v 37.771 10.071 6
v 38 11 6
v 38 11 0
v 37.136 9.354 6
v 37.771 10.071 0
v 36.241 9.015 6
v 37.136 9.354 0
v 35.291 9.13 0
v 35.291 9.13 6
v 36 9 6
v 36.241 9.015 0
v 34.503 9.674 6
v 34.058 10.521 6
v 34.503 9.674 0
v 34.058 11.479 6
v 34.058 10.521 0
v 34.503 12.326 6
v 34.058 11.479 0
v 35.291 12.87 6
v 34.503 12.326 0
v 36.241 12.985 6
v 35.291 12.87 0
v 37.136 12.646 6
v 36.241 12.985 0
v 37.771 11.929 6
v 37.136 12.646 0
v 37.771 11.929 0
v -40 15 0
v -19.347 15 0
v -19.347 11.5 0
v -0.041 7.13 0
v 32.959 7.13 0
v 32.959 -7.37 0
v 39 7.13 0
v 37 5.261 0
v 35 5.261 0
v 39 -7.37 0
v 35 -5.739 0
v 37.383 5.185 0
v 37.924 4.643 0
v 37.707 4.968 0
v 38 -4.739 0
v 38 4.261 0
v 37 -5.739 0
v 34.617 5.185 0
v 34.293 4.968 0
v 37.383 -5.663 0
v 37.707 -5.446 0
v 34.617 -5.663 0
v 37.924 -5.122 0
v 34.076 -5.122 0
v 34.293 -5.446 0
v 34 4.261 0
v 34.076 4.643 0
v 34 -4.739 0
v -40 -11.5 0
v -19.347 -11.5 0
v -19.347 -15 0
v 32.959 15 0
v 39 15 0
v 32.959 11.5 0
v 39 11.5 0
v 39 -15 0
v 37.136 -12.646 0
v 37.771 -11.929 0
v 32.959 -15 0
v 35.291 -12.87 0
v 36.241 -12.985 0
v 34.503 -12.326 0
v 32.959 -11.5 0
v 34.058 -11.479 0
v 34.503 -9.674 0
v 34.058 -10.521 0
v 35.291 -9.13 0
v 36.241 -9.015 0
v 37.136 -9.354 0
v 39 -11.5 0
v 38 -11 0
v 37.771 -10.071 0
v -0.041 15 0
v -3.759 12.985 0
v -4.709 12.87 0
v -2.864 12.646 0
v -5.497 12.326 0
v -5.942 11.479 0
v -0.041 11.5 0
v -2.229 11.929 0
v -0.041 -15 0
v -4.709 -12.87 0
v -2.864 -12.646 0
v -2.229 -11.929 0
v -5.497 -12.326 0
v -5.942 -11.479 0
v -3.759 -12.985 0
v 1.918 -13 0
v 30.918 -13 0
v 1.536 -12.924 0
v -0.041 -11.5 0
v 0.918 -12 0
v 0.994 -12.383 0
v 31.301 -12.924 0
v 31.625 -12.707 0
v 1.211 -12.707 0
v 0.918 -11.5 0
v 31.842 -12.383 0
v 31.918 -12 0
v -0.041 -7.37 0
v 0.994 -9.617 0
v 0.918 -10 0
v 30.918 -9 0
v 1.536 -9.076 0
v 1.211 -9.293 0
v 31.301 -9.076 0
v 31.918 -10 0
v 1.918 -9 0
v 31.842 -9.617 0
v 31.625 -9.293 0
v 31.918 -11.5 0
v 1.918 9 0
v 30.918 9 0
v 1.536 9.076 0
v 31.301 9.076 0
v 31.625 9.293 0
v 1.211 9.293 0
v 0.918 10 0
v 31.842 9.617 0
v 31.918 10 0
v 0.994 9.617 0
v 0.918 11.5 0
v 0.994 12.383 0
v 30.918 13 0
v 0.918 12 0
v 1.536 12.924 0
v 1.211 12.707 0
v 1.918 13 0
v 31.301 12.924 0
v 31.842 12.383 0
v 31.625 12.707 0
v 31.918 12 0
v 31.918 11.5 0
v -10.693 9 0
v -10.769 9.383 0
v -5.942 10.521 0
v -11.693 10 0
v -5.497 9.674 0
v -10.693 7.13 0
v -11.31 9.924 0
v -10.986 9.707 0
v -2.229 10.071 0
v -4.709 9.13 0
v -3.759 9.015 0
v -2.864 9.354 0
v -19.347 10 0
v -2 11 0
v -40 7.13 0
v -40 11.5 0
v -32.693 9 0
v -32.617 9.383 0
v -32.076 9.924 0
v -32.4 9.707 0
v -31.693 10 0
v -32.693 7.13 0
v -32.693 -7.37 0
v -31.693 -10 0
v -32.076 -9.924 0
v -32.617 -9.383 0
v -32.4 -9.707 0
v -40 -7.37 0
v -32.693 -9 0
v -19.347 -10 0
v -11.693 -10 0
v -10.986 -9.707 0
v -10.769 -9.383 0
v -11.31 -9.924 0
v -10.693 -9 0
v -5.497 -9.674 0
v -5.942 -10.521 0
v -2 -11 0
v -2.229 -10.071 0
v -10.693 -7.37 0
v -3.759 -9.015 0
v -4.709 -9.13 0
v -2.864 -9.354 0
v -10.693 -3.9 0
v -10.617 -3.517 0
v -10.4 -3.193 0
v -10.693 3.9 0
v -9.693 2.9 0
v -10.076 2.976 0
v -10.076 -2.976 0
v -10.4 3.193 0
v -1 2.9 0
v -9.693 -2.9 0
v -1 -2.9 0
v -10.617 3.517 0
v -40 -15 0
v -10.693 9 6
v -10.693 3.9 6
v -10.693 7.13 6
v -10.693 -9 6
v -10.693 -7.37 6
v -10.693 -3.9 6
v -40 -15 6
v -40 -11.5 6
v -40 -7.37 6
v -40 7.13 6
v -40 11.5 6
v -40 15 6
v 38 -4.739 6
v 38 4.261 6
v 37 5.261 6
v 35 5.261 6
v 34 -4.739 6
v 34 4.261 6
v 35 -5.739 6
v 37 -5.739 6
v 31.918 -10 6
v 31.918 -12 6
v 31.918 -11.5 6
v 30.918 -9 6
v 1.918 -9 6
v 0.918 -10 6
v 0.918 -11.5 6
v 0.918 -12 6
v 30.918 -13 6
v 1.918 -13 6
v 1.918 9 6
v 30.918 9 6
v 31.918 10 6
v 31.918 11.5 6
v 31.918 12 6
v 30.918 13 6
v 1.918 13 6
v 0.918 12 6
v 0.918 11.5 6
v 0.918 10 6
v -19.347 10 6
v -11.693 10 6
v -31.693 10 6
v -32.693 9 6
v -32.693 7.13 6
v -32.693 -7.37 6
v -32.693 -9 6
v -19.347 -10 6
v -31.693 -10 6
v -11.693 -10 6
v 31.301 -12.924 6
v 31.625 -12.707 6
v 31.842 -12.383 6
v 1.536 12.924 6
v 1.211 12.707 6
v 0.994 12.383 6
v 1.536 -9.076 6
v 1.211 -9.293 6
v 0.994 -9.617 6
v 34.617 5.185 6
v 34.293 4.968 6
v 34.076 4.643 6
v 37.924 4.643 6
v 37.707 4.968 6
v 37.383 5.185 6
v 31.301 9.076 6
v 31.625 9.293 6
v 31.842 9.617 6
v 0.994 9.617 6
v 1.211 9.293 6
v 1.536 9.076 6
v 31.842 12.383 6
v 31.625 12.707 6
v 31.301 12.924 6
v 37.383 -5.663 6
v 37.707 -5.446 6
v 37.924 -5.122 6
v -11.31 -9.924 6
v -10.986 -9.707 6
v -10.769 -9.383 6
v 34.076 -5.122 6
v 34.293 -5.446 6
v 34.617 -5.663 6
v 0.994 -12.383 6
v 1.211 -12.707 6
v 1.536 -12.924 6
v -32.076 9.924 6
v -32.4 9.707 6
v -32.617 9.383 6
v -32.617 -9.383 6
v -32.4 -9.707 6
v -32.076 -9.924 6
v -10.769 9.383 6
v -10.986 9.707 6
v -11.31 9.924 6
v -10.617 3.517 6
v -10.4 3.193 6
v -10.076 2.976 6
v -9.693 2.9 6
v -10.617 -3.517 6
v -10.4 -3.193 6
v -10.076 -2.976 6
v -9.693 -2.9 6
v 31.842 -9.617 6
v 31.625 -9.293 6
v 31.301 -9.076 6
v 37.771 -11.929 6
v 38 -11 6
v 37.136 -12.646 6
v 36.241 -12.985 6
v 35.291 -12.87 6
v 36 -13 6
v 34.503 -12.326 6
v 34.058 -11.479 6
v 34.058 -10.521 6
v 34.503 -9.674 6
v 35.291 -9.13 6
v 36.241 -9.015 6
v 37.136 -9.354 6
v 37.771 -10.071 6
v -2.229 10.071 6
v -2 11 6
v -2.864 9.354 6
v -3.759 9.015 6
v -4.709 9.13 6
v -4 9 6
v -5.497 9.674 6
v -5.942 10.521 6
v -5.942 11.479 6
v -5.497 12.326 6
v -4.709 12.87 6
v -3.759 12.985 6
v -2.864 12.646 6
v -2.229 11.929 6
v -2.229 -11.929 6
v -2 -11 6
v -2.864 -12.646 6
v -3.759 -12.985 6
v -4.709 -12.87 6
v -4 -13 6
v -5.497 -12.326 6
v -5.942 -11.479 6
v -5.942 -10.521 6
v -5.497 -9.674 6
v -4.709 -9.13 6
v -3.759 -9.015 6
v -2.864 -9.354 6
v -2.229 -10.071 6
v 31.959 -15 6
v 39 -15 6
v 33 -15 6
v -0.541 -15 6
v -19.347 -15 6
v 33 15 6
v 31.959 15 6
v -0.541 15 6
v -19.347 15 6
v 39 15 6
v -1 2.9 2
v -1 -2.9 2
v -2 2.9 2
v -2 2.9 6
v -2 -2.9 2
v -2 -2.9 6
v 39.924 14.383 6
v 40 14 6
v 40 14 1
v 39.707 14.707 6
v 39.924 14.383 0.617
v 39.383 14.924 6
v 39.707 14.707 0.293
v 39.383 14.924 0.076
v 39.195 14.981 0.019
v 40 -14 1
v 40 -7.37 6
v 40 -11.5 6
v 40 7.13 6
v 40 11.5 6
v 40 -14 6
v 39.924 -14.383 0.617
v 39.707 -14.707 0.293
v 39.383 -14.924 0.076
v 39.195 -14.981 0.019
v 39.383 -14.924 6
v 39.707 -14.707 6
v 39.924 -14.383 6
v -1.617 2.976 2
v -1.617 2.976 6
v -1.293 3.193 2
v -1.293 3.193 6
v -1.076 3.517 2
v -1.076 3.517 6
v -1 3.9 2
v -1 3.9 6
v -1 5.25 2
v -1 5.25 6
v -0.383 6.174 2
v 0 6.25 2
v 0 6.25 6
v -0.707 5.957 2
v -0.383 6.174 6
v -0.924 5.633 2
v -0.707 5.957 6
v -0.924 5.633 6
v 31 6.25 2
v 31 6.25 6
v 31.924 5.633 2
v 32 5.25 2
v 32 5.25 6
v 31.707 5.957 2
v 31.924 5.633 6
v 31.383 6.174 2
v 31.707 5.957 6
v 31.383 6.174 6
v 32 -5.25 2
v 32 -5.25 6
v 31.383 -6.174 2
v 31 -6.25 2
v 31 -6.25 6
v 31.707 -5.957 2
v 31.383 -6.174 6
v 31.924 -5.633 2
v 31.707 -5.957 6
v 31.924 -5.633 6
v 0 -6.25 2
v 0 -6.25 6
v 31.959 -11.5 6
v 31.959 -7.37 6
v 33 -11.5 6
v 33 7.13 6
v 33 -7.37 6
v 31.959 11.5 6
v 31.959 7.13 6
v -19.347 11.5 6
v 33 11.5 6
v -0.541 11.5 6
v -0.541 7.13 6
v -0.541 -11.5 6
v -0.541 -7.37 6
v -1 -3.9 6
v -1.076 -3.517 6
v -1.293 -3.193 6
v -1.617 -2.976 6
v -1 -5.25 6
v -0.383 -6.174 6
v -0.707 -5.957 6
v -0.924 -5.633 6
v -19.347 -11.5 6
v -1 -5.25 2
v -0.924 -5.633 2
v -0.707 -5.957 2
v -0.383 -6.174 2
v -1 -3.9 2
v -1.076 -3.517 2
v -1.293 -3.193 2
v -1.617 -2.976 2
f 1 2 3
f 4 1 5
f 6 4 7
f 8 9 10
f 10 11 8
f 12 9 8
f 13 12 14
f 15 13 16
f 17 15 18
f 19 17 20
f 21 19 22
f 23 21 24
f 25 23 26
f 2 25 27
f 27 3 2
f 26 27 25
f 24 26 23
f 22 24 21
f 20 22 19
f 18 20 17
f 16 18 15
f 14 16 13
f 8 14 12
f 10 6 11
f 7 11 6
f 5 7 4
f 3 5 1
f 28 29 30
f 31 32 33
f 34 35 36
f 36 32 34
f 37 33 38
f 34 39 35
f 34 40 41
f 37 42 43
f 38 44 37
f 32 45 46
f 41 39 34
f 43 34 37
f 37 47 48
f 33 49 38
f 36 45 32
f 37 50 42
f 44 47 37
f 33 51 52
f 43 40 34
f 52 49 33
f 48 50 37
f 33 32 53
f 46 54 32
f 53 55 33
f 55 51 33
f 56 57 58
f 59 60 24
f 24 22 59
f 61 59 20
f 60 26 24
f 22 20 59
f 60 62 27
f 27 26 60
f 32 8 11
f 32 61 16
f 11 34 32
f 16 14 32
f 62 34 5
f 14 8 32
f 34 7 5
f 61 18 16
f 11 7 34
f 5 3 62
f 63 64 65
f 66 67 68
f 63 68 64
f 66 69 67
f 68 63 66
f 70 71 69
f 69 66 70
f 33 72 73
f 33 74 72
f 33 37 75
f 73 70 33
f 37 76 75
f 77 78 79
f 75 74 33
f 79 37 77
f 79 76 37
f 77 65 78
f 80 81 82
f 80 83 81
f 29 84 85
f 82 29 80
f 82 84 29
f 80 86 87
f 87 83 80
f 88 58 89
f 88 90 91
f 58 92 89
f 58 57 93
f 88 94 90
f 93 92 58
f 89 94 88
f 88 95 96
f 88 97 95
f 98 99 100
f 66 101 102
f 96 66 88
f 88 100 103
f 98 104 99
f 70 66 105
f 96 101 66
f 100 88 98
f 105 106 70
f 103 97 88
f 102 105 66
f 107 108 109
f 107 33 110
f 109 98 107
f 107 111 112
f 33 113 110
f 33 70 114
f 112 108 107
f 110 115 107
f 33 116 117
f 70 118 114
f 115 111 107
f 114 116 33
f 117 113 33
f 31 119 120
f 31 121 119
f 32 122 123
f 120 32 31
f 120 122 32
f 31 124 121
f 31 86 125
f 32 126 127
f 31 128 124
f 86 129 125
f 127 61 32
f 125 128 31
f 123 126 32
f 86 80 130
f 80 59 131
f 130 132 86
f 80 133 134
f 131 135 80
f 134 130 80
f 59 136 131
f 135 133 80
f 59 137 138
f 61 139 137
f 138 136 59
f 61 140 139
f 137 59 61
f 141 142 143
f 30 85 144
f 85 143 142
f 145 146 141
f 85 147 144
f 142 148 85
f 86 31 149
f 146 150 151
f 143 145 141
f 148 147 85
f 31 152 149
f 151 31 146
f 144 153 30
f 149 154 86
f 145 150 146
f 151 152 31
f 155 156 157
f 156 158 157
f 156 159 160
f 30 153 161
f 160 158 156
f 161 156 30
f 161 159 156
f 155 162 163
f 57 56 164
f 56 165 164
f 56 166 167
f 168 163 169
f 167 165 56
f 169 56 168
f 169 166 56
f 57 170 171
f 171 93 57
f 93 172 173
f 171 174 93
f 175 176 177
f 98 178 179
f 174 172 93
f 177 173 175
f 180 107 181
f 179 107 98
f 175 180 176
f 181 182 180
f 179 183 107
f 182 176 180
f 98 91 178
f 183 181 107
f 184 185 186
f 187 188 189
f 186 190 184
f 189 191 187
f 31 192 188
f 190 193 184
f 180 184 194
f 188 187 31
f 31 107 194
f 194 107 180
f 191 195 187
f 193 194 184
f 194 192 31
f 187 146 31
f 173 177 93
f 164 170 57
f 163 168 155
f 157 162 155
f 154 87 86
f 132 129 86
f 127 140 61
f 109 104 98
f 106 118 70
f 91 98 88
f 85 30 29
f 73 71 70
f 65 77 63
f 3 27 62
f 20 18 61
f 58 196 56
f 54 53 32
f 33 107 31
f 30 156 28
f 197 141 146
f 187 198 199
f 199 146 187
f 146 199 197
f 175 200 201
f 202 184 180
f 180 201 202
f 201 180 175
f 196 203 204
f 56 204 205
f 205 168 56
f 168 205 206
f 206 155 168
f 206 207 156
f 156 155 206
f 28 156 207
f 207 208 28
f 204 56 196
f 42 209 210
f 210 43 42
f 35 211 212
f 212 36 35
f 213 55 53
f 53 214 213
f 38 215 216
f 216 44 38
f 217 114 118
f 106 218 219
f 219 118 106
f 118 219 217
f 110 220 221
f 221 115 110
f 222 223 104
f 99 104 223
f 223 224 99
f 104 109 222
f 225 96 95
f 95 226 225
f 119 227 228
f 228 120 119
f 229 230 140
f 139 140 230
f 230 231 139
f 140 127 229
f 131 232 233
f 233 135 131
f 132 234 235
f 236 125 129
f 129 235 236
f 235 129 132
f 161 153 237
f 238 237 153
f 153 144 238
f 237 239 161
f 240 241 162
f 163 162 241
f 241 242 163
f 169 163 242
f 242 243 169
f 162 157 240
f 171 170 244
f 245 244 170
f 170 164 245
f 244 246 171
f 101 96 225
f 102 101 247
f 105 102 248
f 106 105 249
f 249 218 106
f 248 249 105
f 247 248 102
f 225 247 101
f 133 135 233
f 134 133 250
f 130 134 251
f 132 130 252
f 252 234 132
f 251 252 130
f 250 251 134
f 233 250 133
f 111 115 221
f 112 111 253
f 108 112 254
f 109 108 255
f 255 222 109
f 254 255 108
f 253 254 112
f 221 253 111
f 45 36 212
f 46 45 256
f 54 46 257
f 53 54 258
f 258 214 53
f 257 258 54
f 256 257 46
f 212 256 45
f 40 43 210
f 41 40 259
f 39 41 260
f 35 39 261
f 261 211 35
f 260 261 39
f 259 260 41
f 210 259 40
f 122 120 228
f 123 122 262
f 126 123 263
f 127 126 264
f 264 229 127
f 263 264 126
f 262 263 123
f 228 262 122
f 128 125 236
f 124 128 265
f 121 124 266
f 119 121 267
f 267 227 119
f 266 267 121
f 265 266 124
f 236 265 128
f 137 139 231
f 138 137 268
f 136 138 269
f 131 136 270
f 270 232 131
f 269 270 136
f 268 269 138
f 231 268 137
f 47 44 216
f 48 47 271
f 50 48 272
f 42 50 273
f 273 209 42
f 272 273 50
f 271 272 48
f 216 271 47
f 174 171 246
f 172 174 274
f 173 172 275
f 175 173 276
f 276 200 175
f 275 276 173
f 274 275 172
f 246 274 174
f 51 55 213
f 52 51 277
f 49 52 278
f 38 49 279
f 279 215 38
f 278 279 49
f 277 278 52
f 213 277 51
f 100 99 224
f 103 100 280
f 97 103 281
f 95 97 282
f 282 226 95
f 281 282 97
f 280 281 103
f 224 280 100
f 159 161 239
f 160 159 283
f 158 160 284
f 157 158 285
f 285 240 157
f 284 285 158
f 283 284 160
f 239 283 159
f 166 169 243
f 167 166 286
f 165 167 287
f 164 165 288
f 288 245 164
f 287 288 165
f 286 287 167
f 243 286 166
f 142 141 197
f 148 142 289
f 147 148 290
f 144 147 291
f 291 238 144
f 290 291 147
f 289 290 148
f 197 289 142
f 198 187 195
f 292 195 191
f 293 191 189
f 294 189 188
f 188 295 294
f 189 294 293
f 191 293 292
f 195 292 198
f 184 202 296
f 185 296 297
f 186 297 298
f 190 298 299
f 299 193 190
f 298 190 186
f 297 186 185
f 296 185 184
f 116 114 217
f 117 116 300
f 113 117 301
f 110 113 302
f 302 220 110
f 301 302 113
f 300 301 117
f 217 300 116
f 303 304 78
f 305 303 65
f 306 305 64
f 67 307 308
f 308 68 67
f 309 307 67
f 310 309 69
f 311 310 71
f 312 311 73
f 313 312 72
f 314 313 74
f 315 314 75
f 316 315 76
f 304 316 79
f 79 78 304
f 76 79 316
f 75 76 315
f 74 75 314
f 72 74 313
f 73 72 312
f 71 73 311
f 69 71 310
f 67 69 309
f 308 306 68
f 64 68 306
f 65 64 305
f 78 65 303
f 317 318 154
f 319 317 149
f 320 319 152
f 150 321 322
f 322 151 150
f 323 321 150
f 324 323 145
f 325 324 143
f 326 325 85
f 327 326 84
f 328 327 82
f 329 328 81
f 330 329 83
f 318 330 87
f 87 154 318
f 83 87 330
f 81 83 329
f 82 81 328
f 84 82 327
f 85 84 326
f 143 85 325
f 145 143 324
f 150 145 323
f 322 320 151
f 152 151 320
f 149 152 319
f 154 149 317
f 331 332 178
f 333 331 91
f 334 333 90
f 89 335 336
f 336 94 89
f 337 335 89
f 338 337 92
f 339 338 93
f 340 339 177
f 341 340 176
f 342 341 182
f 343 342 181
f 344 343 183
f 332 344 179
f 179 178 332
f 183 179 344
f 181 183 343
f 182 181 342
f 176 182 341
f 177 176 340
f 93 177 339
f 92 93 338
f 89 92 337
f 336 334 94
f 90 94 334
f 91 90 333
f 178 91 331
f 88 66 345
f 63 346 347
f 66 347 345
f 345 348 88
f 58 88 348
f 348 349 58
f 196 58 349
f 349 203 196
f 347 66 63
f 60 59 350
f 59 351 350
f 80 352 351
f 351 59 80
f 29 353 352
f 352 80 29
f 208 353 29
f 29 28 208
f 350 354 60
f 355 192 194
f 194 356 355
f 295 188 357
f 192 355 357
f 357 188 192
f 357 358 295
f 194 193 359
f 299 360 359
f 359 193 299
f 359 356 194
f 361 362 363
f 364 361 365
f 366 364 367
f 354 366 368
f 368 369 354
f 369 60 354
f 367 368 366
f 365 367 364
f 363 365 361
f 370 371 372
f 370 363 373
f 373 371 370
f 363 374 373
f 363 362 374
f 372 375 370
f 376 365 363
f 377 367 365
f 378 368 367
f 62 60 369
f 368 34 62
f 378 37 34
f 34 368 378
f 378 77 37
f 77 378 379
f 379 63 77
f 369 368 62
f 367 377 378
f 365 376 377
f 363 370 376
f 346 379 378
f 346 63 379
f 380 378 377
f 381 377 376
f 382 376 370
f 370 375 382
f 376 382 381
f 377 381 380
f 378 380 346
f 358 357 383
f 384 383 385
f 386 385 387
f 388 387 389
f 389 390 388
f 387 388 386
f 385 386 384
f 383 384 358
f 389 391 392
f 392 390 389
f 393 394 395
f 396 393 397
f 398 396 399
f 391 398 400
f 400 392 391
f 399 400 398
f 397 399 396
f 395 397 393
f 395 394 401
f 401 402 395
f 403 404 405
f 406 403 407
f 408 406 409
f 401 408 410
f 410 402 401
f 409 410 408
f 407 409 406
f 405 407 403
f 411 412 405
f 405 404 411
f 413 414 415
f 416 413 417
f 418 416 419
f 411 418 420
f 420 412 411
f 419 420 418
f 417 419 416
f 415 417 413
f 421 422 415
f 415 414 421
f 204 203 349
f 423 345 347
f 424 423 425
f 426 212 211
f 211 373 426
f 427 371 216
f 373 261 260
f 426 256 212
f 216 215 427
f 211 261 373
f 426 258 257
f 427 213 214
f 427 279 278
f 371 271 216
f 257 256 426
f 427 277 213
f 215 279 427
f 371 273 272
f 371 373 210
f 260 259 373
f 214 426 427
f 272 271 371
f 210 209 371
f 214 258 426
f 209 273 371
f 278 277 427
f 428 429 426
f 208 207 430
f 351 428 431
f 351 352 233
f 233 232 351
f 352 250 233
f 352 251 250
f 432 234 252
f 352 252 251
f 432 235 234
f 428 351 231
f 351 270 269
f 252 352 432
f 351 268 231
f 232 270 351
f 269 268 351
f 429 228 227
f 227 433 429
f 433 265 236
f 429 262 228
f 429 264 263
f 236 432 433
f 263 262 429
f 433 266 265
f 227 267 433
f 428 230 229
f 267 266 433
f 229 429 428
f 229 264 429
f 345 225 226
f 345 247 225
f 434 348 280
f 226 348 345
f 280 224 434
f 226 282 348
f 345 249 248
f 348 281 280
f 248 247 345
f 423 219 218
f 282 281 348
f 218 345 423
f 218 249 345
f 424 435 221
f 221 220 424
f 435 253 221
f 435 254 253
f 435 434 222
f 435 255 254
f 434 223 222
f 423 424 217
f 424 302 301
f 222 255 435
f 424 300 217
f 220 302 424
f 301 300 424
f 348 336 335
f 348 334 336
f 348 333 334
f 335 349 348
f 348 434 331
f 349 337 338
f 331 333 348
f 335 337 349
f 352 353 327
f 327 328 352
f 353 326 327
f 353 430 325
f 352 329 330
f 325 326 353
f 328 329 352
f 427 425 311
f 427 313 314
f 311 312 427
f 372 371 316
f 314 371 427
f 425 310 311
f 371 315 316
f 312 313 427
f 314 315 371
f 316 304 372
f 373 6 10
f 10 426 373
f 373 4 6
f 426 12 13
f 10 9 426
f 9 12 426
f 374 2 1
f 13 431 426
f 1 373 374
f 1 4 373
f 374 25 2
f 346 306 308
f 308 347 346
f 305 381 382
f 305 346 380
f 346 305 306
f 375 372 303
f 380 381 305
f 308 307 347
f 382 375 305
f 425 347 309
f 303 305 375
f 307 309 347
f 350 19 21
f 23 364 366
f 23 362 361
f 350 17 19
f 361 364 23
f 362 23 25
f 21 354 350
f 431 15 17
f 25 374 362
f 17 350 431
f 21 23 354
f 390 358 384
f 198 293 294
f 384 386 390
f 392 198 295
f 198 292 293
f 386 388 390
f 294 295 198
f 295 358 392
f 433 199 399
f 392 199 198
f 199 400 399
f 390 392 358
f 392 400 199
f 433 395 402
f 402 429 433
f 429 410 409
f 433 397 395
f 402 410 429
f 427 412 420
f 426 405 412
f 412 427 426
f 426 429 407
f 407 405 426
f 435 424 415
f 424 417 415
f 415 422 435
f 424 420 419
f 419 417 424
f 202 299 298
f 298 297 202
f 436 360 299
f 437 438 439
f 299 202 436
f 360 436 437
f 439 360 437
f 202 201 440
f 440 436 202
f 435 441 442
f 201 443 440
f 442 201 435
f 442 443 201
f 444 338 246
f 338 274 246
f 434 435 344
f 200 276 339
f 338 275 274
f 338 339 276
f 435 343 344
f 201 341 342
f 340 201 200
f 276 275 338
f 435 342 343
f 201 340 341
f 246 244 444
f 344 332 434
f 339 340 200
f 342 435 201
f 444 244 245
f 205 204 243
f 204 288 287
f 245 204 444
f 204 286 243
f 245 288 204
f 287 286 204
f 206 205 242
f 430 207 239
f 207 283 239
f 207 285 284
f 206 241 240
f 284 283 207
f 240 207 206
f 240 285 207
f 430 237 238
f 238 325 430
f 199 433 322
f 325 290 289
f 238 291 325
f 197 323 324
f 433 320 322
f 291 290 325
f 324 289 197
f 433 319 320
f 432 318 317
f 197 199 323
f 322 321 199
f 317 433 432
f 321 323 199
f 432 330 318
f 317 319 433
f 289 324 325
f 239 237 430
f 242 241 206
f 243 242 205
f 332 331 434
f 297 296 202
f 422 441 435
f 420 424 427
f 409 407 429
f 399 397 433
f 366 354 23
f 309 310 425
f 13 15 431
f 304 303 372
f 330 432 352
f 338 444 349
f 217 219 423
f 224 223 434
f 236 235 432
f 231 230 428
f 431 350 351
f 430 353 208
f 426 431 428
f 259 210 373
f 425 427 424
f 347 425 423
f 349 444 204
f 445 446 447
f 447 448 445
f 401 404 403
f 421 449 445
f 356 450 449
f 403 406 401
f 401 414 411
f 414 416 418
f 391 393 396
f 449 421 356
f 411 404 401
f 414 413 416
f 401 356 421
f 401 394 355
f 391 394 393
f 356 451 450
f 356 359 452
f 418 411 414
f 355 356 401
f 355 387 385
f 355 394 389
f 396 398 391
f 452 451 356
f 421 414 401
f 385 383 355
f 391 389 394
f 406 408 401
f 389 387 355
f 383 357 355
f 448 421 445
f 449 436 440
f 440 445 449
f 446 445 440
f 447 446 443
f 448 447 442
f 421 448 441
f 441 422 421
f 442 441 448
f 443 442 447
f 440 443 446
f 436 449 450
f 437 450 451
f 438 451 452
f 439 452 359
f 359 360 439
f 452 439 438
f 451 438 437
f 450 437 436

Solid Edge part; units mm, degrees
sketch "Sketch1" plane through (0, 0, 0) normal (0, 0, 1) x (1, 0, 0)
  line L0 (-40, -15) -> (40, -15)
  line L1 (40, -15) -> (40, 15)
  line L2 (40, 15) -> (-40, 15)
  line L3 (-40, 15) -> (-40, -15)
  dimension "D1" = 80
  dimension "D2" = 30
extrude "Protrusion1" add sketch "Sketch1" along normal blind 6
sketch "Sketch2" plane through (0, 0, 6) normal (0, 0, 1) x (1, 0, 0)
  line L0 (-1, 6.25) -> (32, 6.25)
  line L1 (32, 6.25) -> (32, -6.25)
  line L2 (32, -6.25) -> (-1, -6.25)
  line L3 (-1, -6.25) -> (-1, 6.25)
  dimension "D1" = 33
  dimension "D2" = 12.5
  dimension "D3" = 8.75
  dimension "D4" = 8
extrude "Utskärning_för_batteriet" cut sketch "Sketch2" against normal blind 4
hole "Hole1" at (36, 11, 6) direction (0, 0, -1) diameter 4 end up to next
hole "Hole2" at (36, -11, 6) direction (0, 0, -1) diameter 4 end up to next
hole "Hole3" at (-4, 11, 6) direction (0, 0, -1) diameter 4 end up to next
hole "Hole4" at (-4, -11, 6) direction (0, 0, -1) diameter 4 end up to next
sketch "Sketch3" plane through (0, 0, 6) normal (0, 0, 1) x (0, -1, 0)
  line L0 (-5.2608, 38) -> (-5.2608, 34)
  line L1 (-5.2608, 34) -> (5.7392, 34)
  line L2 (5.7392, 34) -> (5.7392, 38)
  line L3 (5.7392, 38) -> (-5.2608, 38)
  line L4 (9, 31.9183) -> (9, 0.9183)
  line L5 (9, 0.9183) -> (13, 0.9183)
  line L6 (13, 0.9183) -> (13, 31.9183)
  line L7 (13, 31.9183) -> (9, 31.9183)
  line L8 (-9, 31.9183) -> (-13, 31.9183)
  line L9 (-13, 31.9183) -> (-13, 0.9183)
  line L10 (-13, 0.9183) -> (-9, 0.9183)
  line L11 (-9, 0.9183) -> (-9, 31.9183)
  line L12 (-10, -10.6932) -> (-10, -32.6932)
  line L13 (-10, -32.6932) -> (10, -32.6932)
  line L14 (10, -32.6932) -> (10, -10.6932)
  line L15 (10, -10.6932) -> (-10, -10.6932)
  dimension "D1" = 4
  dimension "D2" = 2
  dimension "D3" = 31
  dimension "D4" = 2
  dimension "D5" = 4
  dimension "D6" = 31
  dimension "D7" = 2
  dimension "D8" = 4
  dimension "D9" = 11
  dimension "D10" = 20
  dimension "D11" = 22
  dimension "D12" = 29.3068
  dimension "D13" = 5
  dimension "D14" = 8.0817
  dimension "D15" = 8.0817
  dimension "D16" = 5.2608
extrude "Cutout1" cut sketch "Sketch3" against normal through all
sketch "Sketch4" plane through (0, 0, 6) normal (0, 0, 1) x (0, -1, 0)
  line L0 (-2.9, -1) -> (2.9, -1)
  line L1 (2.9, -1) -> (2.9, -12.6932)
  line L2 (2.9, -12.6932) -> (-2.9, -12.6932)
  line L3 (-2.9, -12.6932) -> (-2.9, -1)
  dimension "D1" = 11.6932
  dimension "D2" = 12.1
  dimension "D3" = 12.1
extrude "Cutout2" cut sketch "Sketch4" against normal through all
fillet "Avrundningar_1" radius 1 27 edges at (31.9183, -13, 3) (40, 15, 3) (32, 6.25, 4) (40, -15, 3) (0.9183, 13, 3) (32, -6.25, 4) (40, 0, 0) (0.9183, -9, 3) (34, 5.2608, 3) (38, 5.2608, 3) (31.9183, 9, 3) (0.9183, 9, 3) (-1, -6.25, 4) (-1, 6.25, 4) (31.9183, 13, 3) (38, -5.7392, 3) (-10.6932, -10, 3) (34, -5.7392, 3) (0.9183, -13, 3) (-32.6932, 10, 3) (-32.6932, -10, 3) (-10.6932, 10, 3) (-10.6932, 2.9, 3) (-10.6932, -2.9, 3) (31.9183, -9, 3) (-1, 2.9, 4) (-1, -2.9, 4)
